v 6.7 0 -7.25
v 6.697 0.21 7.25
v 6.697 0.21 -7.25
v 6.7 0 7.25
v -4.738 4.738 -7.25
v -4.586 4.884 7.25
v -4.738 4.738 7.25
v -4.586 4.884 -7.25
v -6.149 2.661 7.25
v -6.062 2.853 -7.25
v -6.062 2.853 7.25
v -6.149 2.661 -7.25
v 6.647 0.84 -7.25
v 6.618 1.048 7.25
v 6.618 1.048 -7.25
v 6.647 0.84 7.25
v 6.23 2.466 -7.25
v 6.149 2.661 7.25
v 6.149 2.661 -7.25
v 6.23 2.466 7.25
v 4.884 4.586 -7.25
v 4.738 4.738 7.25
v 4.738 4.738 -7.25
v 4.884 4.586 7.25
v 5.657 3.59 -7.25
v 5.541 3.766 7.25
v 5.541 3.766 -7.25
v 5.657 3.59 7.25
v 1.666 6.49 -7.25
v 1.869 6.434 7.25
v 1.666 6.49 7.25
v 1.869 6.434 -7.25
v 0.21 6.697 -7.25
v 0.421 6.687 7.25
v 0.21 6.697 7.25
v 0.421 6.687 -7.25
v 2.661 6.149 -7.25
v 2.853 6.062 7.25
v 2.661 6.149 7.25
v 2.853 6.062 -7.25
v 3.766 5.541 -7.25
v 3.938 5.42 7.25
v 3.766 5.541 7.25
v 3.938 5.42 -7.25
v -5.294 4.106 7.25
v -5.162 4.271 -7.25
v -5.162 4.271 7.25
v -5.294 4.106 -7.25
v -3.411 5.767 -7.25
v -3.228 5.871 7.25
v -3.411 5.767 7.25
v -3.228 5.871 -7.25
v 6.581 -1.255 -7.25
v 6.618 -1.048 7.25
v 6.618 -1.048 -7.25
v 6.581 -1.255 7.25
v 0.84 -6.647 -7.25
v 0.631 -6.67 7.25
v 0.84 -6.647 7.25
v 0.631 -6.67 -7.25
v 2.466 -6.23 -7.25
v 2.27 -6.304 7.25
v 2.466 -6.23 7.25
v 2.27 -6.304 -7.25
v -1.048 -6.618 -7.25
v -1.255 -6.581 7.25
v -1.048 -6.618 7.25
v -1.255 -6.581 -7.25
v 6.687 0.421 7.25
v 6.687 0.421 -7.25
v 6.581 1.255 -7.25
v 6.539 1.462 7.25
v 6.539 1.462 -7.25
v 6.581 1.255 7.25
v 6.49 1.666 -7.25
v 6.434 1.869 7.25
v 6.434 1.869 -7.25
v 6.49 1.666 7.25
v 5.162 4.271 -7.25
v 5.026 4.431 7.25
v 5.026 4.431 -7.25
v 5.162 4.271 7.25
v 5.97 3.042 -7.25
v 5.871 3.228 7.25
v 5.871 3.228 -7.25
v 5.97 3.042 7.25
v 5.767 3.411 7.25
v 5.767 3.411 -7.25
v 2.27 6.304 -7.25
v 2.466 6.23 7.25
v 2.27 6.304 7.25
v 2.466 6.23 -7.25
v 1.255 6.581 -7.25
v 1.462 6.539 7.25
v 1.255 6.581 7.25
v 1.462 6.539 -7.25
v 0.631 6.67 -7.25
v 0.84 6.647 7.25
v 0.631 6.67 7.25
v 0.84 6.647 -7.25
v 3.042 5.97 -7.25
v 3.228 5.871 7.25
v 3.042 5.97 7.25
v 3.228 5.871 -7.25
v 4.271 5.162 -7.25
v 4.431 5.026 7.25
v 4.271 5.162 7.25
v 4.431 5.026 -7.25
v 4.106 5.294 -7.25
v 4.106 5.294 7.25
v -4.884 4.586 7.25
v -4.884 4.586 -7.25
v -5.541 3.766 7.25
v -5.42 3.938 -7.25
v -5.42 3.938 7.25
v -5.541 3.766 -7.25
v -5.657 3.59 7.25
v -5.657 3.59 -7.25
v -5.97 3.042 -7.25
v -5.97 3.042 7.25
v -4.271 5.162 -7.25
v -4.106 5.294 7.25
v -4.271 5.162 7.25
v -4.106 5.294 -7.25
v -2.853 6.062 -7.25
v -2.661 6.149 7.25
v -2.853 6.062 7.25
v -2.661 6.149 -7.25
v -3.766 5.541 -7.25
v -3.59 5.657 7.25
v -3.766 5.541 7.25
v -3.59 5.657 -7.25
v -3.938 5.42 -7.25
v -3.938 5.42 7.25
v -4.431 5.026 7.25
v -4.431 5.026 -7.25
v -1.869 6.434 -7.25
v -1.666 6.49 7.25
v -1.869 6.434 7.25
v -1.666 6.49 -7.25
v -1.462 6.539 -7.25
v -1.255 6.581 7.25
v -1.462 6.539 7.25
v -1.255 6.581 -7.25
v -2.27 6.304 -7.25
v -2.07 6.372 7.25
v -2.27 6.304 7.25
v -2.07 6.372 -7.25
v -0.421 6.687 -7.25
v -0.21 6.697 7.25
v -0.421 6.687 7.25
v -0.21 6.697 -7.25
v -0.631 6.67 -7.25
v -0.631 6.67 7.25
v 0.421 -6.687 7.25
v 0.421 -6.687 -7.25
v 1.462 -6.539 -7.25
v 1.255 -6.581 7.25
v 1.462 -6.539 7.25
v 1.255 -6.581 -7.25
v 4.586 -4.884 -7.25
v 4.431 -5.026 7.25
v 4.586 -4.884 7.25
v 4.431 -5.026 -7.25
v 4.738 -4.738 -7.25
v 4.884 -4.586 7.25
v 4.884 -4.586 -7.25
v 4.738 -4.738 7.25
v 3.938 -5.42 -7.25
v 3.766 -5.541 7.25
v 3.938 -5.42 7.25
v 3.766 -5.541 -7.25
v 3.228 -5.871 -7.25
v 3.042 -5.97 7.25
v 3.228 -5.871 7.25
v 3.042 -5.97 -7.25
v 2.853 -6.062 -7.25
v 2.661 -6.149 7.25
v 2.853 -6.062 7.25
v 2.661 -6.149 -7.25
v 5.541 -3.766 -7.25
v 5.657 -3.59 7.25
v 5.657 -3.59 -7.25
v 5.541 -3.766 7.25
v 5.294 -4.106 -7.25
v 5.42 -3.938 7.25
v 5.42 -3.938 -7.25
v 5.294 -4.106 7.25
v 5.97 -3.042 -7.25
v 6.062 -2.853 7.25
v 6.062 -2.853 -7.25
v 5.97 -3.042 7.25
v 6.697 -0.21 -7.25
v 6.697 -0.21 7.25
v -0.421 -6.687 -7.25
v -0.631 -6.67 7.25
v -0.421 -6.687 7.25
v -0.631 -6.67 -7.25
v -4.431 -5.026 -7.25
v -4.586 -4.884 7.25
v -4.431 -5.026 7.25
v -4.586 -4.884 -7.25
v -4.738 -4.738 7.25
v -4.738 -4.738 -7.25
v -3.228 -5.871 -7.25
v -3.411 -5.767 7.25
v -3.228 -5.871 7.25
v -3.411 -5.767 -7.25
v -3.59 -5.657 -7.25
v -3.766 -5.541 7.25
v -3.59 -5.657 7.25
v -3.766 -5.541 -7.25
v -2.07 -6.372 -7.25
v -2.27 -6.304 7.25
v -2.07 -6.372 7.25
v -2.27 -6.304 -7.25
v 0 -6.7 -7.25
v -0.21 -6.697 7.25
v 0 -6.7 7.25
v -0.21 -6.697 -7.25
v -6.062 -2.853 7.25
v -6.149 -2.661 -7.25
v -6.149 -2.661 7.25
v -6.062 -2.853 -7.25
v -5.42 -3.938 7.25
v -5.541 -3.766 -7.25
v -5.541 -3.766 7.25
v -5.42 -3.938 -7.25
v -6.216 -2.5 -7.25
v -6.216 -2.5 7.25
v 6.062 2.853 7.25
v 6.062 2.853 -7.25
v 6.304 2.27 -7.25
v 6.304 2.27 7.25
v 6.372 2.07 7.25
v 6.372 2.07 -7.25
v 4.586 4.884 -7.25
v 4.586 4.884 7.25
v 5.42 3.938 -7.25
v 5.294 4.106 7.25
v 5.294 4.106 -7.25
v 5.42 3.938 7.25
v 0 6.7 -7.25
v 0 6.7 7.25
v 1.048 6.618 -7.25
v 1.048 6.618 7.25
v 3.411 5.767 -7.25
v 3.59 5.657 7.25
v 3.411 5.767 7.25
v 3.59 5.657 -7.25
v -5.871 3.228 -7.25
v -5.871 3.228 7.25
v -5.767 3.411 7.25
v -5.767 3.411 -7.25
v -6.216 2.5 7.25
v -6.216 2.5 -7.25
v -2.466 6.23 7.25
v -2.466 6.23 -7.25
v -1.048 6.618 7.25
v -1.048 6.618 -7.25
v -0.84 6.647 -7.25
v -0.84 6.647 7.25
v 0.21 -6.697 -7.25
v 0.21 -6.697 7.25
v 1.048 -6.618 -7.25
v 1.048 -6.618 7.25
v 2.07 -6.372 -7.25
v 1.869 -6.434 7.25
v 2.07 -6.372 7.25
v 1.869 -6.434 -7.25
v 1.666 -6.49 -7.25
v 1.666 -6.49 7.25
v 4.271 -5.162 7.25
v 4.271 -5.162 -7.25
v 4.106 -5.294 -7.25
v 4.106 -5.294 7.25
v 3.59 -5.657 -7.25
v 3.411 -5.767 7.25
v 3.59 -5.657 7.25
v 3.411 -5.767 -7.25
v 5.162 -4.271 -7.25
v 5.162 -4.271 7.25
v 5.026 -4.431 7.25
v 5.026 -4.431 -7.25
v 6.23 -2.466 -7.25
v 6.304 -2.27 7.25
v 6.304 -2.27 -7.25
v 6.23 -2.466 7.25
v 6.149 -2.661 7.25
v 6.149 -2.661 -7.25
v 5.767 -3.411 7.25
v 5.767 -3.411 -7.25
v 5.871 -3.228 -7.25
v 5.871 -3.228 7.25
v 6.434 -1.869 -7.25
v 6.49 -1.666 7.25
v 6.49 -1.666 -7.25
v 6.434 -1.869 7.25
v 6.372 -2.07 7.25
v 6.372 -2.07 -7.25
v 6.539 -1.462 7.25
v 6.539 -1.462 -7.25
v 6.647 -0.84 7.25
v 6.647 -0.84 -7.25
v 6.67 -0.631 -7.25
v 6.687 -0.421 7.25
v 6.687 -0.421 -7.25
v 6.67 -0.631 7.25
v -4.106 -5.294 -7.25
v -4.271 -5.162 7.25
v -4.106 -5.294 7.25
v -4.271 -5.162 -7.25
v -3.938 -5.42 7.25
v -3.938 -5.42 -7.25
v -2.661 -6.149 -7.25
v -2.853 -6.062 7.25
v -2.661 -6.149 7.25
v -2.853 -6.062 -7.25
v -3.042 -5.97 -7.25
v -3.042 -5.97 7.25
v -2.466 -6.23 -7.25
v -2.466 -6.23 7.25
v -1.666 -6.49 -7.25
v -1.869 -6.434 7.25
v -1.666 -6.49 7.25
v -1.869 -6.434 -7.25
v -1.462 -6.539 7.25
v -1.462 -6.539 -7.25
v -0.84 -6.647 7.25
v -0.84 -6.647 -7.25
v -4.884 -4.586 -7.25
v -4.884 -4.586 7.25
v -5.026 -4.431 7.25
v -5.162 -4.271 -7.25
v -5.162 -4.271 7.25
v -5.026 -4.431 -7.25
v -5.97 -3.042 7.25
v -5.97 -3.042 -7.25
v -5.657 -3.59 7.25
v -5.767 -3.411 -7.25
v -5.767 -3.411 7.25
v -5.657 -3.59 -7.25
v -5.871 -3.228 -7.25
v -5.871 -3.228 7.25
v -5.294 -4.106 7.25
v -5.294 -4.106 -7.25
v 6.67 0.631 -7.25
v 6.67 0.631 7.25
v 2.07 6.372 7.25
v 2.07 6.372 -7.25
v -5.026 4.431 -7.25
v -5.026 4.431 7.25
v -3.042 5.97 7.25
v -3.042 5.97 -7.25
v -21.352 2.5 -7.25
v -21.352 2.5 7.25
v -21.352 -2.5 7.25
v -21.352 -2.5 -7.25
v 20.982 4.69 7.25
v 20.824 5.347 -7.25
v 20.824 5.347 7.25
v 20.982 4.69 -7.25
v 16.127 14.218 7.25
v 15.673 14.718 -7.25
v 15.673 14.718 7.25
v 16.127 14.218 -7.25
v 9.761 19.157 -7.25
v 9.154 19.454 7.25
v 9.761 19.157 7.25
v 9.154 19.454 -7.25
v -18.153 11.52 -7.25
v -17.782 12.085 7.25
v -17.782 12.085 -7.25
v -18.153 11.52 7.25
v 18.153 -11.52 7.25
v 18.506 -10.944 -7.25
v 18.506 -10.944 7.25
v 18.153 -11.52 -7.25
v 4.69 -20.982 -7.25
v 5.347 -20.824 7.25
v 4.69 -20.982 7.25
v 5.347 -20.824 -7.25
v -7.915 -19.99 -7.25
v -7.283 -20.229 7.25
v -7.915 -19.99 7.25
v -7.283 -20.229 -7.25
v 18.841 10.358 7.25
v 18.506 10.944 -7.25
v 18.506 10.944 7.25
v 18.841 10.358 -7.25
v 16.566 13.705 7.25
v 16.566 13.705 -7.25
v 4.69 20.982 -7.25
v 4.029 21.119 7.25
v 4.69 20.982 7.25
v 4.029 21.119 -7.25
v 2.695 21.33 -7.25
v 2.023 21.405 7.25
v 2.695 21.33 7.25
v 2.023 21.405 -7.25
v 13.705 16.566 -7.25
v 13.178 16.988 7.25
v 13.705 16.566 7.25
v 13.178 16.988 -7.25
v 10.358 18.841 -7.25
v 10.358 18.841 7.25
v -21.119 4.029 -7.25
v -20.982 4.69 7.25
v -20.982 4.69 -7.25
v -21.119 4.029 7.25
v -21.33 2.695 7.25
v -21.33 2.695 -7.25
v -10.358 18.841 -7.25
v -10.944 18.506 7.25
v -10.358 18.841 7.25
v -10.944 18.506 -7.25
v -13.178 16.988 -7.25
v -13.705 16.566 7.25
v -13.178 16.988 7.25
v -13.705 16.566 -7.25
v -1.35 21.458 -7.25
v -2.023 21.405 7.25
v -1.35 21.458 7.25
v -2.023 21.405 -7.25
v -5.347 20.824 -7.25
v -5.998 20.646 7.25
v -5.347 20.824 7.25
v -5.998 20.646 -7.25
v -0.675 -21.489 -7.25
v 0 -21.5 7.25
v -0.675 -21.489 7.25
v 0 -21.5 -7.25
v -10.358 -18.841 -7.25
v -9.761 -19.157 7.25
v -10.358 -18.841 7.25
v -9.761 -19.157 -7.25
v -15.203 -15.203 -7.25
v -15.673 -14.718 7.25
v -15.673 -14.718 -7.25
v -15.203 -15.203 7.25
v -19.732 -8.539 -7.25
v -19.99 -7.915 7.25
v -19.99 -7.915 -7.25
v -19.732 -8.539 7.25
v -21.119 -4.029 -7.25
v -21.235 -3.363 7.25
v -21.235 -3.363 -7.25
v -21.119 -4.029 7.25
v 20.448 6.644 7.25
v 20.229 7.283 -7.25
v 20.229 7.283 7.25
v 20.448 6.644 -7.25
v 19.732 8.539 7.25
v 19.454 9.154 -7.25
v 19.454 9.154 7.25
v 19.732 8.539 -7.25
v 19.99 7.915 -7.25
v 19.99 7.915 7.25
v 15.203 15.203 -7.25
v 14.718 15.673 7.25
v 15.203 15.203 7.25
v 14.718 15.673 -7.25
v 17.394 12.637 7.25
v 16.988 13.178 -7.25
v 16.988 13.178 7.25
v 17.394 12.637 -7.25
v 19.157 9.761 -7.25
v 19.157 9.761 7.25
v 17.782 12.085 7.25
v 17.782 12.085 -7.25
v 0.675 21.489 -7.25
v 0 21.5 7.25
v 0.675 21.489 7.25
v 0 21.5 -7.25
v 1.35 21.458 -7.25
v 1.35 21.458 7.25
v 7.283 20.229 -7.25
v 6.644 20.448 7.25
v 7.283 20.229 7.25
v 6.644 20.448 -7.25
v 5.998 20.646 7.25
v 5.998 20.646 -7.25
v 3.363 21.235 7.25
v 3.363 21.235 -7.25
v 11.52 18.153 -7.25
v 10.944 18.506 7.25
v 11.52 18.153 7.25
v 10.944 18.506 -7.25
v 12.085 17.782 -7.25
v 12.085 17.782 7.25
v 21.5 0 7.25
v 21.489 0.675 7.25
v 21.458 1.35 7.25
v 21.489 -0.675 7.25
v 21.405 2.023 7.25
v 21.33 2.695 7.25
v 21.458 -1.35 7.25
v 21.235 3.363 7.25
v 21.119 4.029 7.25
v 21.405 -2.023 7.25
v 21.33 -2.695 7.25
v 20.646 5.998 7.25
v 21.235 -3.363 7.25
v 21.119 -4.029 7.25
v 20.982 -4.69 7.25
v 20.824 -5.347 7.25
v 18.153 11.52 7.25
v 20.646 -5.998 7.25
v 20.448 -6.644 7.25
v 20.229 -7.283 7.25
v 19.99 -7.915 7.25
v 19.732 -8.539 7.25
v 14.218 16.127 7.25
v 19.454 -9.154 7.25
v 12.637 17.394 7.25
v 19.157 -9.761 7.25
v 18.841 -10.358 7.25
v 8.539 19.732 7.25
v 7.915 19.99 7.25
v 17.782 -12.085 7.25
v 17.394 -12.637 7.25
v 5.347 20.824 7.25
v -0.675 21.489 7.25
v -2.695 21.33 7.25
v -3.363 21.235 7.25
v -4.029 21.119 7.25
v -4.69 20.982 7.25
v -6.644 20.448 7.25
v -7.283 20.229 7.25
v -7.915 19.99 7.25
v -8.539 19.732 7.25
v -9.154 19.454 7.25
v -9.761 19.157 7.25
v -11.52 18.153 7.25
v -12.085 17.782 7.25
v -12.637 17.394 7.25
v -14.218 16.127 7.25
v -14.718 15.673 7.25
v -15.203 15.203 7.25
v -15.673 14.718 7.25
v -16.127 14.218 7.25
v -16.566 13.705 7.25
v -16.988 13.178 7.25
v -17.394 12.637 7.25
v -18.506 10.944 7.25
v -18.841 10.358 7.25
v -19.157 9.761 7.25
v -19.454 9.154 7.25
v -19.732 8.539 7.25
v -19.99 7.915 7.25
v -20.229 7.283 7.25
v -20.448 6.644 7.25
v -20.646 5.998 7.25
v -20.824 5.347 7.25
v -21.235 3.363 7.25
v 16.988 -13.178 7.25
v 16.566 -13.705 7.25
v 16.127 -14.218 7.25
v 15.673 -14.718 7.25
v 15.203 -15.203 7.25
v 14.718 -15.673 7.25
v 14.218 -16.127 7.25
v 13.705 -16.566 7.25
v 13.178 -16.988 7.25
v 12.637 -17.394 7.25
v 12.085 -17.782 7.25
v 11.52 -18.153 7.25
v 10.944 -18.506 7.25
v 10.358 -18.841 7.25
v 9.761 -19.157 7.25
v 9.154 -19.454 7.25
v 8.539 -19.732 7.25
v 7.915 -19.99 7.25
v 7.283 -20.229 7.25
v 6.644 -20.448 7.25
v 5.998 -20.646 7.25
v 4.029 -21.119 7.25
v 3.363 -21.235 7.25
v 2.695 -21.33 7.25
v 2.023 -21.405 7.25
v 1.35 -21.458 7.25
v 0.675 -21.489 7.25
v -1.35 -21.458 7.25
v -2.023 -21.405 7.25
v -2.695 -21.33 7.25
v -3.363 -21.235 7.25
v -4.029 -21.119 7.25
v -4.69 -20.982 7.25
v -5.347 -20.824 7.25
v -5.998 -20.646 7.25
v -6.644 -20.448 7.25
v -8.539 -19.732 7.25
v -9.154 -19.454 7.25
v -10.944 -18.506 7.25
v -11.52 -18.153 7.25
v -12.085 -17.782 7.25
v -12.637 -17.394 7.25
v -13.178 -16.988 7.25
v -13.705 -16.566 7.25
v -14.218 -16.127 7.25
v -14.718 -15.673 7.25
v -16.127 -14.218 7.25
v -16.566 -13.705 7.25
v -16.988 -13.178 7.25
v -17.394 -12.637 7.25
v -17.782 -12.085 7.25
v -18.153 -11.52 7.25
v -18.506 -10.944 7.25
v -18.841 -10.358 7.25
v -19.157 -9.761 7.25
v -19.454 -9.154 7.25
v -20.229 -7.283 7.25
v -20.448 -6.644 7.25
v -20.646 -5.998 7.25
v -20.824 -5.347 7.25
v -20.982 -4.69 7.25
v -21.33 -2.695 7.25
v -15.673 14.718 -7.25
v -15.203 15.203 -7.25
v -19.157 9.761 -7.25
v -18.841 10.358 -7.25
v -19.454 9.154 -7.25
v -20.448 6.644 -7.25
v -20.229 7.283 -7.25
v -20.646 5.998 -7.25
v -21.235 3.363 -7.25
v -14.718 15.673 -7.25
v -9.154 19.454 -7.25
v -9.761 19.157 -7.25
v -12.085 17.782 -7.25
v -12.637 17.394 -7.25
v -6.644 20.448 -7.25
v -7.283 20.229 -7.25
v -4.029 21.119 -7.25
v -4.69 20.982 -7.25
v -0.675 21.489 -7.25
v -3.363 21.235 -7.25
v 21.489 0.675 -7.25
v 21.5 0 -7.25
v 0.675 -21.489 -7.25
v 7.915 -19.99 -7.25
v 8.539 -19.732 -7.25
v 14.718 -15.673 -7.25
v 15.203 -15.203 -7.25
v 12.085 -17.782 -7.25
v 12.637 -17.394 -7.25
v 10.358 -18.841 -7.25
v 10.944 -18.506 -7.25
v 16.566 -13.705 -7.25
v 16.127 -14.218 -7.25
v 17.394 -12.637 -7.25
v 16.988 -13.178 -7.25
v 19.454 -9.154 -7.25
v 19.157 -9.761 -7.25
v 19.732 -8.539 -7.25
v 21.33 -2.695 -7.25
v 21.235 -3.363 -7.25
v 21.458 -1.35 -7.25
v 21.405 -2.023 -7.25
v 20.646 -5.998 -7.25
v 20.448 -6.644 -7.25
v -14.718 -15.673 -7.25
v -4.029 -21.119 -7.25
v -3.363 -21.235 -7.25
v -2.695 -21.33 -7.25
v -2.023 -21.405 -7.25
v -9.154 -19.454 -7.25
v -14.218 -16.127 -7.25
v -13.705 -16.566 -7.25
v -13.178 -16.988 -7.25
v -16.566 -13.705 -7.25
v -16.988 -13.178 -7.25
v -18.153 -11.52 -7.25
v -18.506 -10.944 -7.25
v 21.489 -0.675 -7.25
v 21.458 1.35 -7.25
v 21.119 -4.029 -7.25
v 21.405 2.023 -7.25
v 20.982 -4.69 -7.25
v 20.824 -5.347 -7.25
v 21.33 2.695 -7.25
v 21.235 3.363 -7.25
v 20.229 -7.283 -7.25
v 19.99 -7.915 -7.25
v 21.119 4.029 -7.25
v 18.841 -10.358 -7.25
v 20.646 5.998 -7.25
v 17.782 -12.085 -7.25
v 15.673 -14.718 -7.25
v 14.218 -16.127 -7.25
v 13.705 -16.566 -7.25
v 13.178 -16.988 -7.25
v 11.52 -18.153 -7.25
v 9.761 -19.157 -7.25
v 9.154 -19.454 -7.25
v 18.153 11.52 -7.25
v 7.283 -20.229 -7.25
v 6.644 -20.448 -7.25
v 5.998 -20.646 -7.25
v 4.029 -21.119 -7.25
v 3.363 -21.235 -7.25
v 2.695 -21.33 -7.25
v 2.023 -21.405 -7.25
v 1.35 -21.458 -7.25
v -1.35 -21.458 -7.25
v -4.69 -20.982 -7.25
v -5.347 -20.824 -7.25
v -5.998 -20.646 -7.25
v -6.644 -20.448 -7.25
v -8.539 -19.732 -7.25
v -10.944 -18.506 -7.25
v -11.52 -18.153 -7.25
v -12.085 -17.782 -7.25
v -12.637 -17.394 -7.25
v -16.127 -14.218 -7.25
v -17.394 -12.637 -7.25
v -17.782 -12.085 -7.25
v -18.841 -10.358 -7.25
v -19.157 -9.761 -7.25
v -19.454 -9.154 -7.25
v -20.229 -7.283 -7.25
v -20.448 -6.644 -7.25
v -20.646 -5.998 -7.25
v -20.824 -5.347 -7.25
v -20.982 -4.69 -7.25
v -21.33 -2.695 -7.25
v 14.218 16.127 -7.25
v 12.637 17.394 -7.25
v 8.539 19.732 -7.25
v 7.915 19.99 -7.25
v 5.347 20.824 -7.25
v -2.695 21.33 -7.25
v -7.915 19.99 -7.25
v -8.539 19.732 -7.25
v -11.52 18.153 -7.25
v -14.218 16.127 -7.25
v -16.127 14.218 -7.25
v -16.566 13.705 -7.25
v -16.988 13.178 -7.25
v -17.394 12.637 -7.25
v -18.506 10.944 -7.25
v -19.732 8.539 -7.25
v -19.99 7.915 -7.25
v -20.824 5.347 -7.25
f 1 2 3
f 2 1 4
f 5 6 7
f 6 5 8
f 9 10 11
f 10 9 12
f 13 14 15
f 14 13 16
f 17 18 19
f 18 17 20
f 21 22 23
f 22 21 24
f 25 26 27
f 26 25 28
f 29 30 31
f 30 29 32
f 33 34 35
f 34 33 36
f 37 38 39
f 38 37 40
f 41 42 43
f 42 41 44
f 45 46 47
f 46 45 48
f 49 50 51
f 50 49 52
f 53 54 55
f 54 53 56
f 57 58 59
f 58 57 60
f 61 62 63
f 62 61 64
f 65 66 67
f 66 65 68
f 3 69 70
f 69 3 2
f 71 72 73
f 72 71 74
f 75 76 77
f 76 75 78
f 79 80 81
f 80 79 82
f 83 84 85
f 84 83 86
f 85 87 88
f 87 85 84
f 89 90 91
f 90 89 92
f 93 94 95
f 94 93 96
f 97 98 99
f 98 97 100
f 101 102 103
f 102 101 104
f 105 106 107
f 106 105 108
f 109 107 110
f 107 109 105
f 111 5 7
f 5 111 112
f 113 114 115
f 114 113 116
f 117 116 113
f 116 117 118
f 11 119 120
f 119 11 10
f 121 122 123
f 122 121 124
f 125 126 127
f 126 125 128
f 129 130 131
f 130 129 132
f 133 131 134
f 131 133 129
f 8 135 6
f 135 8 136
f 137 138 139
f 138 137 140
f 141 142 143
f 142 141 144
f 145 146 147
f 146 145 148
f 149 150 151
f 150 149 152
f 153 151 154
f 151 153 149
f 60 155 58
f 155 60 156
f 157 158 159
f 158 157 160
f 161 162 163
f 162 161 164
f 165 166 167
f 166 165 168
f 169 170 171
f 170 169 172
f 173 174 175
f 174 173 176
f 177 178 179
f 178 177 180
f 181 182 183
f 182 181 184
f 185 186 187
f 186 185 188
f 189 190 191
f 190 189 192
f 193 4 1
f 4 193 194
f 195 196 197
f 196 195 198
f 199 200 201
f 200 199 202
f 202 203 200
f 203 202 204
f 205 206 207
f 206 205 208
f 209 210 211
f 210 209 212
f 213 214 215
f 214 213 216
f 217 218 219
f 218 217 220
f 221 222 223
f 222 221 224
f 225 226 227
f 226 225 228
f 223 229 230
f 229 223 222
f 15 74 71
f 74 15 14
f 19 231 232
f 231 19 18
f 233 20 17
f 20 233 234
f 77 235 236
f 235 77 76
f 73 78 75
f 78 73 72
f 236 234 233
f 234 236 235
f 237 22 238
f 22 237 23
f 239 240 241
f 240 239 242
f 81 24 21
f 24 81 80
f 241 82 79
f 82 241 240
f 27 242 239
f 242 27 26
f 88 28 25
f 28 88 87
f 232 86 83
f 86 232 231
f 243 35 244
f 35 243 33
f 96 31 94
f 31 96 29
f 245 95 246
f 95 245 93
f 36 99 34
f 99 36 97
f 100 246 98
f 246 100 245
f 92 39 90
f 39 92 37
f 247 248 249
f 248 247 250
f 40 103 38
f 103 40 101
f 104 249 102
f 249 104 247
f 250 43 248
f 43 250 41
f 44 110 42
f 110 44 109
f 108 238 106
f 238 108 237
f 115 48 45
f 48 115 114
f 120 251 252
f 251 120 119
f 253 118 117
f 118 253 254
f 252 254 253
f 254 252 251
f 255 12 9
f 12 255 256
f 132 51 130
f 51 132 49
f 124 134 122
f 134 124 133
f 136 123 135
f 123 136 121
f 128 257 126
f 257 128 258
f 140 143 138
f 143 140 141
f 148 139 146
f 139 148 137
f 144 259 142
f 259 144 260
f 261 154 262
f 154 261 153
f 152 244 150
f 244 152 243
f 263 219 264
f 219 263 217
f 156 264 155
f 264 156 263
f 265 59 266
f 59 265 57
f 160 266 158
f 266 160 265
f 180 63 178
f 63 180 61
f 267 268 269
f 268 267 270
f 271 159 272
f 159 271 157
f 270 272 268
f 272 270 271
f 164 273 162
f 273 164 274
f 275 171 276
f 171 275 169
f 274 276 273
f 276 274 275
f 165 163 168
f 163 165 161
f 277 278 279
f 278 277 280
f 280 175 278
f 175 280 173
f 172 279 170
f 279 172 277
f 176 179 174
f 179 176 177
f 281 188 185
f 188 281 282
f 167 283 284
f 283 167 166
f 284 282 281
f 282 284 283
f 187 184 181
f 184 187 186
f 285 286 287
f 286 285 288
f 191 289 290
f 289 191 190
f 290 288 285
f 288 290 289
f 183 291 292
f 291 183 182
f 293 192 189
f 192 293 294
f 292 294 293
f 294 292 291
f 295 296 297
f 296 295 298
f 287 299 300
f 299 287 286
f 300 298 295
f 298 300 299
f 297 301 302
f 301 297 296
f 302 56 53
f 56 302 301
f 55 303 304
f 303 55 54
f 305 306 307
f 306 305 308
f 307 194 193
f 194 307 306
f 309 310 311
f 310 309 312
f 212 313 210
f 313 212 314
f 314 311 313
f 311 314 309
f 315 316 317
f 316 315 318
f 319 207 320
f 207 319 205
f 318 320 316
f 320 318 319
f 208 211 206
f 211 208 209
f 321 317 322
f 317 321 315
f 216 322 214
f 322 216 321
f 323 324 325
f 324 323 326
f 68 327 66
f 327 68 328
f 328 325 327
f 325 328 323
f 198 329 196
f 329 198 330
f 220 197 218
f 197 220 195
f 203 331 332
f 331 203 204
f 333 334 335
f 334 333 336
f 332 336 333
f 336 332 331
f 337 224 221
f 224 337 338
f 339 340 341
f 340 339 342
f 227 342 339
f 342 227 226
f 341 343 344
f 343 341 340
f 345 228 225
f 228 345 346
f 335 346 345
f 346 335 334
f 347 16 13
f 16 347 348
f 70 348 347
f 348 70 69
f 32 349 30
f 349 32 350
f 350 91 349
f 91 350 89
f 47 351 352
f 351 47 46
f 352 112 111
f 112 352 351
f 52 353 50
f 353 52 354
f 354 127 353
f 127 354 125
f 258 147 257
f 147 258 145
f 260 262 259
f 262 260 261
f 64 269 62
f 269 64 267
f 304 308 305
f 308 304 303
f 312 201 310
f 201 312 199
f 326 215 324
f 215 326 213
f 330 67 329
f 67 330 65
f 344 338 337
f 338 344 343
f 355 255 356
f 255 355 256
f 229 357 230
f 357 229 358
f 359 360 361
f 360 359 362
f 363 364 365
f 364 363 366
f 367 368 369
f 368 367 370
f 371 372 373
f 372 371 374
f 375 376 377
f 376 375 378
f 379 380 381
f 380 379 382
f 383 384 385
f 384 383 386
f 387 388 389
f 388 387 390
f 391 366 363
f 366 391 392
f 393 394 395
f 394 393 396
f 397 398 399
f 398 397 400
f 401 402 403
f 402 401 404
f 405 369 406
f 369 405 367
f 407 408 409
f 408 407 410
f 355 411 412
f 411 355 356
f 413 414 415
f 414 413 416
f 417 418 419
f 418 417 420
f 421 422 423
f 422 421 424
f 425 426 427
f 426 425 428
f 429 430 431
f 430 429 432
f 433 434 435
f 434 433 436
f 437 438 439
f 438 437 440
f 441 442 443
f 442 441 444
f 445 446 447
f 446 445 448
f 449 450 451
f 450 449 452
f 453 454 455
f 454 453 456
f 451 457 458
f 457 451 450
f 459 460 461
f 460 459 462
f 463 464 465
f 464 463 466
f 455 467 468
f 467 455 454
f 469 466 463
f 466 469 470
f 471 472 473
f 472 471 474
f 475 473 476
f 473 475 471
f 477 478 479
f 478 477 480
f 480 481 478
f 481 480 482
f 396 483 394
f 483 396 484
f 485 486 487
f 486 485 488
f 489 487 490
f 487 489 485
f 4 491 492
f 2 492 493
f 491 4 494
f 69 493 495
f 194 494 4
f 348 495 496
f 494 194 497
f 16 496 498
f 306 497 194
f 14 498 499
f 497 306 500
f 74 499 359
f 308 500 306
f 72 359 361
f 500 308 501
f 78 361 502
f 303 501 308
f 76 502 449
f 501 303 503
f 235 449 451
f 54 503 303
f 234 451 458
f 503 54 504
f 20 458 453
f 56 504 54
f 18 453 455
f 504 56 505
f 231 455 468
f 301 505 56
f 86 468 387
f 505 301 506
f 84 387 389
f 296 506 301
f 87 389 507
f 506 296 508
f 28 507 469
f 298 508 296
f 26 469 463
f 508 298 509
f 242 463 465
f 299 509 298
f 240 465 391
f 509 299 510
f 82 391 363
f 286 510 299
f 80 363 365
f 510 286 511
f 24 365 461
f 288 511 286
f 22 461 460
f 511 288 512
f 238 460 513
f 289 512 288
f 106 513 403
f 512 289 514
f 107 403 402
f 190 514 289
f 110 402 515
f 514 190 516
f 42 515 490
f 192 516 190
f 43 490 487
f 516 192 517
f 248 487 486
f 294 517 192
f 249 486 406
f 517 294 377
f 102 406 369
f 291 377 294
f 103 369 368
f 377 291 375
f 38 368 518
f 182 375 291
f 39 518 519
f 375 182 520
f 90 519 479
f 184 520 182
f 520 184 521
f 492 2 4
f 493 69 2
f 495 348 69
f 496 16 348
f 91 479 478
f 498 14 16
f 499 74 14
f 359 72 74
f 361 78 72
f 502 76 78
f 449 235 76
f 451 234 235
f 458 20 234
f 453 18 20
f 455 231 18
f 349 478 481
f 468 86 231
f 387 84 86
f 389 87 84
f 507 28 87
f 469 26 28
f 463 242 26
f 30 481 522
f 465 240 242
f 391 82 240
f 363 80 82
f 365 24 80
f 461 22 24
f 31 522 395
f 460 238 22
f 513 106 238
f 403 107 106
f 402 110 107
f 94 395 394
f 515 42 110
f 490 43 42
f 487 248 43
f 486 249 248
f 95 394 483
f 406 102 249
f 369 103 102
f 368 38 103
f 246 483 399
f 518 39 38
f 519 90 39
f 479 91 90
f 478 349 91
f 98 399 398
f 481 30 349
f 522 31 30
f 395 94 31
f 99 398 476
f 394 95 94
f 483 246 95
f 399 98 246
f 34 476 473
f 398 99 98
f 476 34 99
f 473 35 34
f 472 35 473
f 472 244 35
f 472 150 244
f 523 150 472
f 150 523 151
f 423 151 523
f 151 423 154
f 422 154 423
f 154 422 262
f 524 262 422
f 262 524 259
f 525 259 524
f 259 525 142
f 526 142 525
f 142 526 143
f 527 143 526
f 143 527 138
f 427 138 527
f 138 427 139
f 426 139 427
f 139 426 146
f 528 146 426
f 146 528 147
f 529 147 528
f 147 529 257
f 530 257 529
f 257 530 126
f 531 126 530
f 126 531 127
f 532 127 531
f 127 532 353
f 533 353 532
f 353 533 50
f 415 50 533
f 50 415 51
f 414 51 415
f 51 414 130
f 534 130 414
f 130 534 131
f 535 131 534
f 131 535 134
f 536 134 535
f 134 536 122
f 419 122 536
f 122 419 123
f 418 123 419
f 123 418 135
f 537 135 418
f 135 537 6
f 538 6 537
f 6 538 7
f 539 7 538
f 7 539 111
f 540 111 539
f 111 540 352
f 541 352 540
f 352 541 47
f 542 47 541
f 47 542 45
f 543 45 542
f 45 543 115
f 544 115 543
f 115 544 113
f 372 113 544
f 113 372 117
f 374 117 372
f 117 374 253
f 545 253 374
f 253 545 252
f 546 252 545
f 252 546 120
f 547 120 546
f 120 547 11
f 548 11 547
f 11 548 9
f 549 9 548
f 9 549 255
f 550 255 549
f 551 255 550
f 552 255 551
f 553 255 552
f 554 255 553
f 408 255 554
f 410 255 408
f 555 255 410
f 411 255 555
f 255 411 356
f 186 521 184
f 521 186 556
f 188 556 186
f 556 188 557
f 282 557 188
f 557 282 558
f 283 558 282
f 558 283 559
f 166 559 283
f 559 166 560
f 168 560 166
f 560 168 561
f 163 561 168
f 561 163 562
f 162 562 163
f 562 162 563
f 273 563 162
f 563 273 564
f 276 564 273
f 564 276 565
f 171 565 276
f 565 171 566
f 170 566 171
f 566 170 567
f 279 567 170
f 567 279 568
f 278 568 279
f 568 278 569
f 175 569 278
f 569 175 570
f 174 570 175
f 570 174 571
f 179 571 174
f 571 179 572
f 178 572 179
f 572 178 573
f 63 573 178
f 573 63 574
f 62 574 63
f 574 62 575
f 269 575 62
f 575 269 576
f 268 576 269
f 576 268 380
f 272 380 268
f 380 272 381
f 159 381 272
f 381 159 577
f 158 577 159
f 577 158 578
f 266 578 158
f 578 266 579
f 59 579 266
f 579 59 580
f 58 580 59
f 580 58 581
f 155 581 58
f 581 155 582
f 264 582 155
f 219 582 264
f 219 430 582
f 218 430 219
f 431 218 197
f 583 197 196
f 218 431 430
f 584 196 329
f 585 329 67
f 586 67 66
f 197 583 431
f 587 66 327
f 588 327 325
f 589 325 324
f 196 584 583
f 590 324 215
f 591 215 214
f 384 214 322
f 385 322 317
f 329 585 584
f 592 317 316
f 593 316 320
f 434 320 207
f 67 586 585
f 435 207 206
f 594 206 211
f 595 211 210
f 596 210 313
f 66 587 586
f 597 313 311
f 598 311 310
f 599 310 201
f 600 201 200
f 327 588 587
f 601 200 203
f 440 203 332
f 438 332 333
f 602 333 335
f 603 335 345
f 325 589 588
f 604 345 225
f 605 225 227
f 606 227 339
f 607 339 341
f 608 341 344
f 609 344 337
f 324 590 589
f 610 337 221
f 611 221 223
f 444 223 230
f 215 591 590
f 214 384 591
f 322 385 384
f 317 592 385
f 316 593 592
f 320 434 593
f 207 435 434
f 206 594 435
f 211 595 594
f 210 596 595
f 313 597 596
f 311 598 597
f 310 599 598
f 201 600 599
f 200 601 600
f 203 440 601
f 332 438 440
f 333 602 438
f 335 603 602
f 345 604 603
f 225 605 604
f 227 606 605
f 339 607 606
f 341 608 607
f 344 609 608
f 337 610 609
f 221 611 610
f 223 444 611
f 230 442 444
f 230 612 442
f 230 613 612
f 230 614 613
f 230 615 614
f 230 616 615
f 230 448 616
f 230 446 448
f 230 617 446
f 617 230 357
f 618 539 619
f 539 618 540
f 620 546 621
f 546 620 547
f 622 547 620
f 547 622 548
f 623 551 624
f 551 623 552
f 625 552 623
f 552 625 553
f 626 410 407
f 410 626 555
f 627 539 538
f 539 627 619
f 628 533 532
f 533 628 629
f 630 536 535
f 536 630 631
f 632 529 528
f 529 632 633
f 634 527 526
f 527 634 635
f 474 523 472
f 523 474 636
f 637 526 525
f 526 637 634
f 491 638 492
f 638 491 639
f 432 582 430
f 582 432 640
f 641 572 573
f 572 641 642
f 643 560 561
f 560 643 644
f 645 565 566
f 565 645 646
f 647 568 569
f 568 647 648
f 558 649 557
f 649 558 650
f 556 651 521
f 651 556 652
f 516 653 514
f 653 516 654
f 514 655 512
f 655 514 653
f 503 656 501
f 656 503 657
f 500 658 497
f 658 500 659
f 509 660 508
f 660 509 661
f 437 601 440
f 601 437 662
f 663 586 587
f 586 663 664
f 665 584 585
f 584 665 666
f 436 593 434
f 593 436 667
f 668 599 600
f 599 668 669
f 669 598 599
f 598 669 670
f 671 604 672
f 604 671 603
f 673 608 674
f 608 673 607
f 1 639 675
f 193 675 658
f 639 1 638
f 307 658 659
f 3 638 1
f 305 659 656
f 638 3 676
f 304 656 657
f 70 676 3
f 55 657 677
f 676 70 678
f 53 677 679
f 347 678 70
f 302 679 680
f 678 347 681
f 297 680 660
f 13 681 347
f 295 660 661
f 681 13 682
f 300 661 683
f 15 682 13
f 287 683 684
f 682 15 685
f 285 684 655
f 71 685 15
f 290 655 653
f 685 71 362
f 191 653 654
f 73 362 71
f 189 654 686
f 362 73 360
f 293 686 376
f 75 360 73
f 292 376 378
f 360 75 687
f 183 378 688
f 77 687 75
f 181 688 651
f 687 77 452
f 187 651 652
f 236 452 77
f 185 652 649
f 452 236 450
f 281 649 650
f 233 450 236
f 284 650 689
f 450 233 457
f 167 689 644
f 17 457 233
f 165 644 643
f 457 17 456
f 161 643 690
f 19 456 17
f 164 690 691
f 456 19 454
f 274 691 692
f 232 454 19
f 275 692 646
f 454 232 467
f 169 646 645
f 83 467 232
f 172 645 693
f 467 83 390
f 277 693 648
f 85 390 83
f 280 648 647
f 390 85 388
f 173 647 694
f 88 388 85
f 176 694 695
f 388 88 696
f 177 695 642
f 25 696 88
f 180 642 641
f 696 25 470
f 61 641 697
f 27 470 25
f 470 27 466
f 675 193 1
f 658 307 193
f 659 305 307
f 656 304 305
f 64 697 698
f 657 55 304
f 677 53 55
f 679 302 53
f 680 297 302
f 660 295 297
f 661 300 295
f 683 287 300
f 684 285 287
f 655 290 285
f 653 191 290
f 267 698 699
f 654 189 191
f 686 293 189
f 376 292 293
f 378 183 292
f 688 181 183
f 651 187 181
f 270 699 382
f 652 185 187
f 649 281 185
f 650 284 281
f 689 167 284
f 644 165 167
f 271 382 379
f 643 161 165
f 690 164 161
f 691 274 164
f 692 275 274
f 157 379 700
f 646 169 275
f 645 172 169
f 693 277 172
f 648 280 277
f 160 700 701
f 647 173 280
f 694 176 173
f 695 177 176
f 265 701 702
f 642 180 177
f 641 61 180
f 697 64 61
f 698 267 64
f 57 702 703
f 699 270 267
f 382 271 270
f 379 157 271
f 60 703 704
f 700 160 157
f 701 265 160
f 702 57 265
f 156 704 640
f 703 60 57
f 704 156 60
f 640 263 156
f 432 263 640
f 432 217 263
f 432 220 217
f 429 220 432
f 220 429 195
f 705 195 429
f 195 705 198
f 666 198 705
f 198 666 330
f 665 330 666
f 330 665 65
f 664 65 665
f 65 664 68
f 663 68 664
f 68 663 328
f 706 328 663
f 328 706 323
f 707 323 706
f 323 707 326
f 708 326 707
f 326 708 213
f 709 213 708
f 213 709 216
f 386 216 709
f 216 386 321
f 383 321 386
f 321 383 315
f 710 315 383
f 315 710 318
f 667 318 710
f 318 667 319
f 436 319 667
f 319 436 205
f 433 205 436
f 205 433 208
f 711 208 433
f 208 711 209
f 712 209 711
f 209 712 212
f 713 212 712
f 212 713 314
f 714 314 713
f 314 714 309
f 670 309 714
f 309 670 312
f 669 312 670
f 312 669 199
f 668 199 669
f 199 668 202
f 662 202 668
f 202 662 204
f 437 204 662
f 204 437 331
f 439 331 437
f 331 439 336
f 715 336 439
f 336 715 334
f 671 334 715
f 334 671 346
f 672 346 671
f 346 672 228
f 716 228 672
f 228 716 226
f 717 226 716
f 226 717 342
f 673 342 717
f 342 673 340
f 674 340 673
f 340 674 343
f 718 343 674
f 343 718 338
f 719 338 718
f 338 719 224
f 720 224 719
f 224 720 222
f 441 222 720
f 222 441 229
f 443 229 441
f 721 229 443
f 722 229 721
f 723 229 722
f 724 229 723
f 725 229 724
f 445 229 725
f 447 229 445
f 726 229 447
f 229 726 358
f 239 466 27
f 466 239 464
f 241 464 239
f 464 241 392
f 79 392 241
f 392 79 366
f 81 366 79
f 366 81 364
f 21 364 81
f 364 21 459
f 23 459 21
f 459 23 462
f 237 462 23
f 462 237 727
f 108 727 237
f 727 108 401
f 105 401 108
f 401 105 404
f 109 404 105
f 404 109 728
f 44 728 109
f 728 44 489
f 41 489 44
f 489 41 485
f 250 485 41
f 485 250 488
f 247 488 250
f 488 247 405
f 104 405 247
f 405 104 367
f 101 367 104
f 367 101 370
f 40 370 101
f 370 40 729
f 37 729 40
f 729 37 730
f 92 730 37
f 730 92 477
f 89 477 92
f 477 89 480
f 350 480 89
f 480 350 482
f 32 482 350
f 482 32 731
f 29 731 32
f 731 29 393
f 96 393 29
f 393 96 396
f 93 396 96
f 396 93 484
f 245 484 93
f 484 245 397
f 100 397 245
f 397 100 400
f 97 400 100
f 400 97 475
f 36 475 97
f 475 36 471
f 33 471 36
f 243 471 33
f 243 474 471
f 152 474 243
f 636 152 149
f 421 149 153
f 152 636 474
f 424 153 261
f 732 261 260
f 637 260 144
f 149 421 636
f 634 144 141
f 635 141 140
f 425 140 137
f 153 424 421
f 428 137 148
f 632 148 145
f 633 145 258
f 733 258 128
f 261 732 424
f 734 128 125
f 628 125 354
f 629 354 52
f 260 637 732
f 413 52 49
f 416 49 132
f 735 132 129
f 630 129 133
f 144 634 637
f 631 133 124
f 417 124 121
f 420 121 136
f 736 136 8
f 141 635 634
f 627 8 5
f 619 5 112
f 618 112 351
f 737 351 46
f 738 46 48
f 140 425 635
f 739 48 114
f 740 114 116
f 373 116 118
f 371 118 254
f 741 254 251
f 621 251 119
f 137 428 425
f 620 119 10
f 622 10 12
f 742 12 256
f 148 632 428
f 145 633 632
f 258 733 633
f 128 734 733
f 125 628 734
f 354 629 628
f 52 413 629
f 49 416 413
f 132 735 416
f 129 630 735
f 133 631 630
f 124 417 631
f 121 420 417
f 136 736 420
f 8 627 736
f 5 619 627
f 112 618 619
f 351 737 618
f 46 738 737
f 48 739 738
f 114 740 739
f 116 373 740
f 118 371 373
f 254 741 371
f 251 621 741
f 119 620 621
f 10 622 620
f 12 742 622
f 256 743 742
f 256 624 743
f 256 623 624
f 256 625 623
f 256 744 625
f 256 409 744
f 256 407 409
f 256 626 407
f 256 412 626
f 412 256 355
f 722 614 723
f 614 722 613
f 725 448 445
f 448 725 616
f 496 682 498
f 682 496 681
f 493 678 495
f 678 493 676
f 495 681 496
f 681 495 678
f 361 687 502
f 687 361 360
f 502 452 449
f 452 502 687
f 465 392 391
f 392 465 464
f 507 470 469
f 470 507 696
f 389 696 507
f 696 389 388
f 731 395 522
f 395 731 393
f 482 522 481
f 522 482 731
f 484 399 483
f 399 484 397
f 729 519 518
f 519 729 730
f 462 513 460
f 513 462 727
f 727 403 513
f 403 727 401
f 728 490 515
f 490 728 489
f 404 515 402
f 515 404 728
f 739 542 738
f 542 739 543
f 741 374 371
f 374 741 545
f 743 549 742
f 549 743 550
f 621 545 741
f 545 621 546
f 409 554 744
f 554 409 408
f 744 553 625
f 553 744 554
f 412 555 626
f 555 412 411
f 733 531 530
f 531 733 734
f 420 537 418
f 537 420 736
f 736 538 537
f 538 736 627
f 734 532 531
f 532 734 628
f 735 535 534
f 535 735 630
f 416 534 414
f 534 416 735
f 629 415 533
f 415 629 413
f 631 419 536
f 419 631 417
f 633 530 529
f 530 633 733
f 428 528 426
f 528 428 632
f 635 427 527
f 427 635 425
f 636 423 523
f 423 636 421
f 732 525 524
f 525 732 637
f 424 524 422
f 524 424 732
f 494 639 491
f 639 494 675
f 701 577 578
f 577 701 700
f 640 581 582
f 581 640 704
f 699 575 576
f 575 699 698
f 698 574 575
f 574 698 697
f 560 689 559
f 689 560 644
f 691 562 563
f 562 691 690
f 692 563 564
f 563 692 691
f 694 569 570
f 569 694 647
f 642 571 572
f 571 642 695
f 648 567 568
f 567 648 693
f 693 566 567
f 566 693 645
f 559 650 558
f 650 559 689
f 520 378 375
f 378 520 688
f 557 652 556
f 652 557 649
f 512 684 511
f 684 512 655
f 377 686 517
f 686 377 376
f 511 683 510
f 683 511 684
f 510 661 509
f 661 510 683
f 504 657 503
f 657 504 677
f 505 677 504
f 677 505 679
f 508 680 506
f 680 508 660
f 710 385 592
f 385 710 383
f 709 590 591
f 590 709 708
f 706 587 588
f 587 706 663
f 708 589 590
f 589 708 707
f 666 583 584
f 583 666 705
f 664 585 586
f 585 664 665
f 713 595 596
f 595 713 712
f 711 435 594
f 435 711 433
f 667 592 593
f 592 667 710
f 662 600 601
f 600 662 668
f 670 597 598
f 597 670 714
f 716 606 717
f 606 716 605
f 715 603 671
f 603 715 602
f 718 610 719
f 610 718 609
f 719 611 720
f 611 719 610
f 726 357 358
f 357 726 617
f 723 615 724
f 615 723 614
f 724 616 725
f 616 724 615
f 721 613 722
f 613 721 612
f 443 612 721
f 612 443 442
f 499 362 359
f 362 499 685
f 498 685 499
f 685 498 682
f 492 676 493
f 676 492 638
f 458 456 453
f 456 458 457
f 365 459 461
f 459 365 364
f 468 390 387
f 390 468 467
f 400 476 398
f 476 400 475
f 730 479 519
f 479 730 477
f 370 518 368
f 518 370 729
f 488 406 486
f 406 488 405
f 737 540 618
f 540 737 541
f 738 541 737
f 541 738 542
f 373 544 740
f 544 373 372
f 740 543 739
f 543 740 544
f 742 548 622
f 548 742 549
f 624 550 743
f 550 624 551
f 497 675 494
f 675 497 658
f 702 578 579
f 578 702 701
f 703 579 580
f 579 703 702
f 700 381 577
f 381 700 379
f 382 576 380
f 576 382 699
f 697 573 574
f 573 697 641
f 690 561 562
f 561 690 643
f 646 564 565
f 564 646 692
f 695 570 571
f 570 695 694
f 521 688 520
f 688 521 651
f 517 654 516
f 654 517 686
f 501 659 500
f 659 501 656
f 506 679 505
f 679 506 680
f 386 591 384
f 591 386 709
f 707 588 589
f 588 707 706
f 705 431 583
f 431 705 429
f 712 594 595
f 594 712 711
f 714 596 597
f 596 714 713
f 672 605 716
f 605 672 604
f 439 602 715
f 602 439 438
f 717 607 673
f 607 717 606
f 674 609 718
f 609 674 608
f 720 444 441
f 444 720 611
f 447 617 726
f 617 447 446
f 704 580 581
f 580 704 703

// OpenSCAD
//
// Drill press adapter for micro air grinder for use in 
// SMI drill press
// D. Rowntree 17Nov15
//

// Configure
od=43;
id=15.4;
clearance=1;
slot_w=5;
height=29;
fn=200;

// render top level
body();

module body()
{
    difference(){
        bulk();
        bulk_remove();
    }
}

module bulk()
{
    cylinder(h=height/2, r=od/2, center = true, $fn=fn);
}

module bulk_remove()
{
    union(){
        cylinder(h=4+height/2, r=id/2-clearance, center=true, $fn=fn);
        translate([-od/4,0,0]) cube([2+od/2,slot_w,4+height/2], center=true);
    }
   
}
        
